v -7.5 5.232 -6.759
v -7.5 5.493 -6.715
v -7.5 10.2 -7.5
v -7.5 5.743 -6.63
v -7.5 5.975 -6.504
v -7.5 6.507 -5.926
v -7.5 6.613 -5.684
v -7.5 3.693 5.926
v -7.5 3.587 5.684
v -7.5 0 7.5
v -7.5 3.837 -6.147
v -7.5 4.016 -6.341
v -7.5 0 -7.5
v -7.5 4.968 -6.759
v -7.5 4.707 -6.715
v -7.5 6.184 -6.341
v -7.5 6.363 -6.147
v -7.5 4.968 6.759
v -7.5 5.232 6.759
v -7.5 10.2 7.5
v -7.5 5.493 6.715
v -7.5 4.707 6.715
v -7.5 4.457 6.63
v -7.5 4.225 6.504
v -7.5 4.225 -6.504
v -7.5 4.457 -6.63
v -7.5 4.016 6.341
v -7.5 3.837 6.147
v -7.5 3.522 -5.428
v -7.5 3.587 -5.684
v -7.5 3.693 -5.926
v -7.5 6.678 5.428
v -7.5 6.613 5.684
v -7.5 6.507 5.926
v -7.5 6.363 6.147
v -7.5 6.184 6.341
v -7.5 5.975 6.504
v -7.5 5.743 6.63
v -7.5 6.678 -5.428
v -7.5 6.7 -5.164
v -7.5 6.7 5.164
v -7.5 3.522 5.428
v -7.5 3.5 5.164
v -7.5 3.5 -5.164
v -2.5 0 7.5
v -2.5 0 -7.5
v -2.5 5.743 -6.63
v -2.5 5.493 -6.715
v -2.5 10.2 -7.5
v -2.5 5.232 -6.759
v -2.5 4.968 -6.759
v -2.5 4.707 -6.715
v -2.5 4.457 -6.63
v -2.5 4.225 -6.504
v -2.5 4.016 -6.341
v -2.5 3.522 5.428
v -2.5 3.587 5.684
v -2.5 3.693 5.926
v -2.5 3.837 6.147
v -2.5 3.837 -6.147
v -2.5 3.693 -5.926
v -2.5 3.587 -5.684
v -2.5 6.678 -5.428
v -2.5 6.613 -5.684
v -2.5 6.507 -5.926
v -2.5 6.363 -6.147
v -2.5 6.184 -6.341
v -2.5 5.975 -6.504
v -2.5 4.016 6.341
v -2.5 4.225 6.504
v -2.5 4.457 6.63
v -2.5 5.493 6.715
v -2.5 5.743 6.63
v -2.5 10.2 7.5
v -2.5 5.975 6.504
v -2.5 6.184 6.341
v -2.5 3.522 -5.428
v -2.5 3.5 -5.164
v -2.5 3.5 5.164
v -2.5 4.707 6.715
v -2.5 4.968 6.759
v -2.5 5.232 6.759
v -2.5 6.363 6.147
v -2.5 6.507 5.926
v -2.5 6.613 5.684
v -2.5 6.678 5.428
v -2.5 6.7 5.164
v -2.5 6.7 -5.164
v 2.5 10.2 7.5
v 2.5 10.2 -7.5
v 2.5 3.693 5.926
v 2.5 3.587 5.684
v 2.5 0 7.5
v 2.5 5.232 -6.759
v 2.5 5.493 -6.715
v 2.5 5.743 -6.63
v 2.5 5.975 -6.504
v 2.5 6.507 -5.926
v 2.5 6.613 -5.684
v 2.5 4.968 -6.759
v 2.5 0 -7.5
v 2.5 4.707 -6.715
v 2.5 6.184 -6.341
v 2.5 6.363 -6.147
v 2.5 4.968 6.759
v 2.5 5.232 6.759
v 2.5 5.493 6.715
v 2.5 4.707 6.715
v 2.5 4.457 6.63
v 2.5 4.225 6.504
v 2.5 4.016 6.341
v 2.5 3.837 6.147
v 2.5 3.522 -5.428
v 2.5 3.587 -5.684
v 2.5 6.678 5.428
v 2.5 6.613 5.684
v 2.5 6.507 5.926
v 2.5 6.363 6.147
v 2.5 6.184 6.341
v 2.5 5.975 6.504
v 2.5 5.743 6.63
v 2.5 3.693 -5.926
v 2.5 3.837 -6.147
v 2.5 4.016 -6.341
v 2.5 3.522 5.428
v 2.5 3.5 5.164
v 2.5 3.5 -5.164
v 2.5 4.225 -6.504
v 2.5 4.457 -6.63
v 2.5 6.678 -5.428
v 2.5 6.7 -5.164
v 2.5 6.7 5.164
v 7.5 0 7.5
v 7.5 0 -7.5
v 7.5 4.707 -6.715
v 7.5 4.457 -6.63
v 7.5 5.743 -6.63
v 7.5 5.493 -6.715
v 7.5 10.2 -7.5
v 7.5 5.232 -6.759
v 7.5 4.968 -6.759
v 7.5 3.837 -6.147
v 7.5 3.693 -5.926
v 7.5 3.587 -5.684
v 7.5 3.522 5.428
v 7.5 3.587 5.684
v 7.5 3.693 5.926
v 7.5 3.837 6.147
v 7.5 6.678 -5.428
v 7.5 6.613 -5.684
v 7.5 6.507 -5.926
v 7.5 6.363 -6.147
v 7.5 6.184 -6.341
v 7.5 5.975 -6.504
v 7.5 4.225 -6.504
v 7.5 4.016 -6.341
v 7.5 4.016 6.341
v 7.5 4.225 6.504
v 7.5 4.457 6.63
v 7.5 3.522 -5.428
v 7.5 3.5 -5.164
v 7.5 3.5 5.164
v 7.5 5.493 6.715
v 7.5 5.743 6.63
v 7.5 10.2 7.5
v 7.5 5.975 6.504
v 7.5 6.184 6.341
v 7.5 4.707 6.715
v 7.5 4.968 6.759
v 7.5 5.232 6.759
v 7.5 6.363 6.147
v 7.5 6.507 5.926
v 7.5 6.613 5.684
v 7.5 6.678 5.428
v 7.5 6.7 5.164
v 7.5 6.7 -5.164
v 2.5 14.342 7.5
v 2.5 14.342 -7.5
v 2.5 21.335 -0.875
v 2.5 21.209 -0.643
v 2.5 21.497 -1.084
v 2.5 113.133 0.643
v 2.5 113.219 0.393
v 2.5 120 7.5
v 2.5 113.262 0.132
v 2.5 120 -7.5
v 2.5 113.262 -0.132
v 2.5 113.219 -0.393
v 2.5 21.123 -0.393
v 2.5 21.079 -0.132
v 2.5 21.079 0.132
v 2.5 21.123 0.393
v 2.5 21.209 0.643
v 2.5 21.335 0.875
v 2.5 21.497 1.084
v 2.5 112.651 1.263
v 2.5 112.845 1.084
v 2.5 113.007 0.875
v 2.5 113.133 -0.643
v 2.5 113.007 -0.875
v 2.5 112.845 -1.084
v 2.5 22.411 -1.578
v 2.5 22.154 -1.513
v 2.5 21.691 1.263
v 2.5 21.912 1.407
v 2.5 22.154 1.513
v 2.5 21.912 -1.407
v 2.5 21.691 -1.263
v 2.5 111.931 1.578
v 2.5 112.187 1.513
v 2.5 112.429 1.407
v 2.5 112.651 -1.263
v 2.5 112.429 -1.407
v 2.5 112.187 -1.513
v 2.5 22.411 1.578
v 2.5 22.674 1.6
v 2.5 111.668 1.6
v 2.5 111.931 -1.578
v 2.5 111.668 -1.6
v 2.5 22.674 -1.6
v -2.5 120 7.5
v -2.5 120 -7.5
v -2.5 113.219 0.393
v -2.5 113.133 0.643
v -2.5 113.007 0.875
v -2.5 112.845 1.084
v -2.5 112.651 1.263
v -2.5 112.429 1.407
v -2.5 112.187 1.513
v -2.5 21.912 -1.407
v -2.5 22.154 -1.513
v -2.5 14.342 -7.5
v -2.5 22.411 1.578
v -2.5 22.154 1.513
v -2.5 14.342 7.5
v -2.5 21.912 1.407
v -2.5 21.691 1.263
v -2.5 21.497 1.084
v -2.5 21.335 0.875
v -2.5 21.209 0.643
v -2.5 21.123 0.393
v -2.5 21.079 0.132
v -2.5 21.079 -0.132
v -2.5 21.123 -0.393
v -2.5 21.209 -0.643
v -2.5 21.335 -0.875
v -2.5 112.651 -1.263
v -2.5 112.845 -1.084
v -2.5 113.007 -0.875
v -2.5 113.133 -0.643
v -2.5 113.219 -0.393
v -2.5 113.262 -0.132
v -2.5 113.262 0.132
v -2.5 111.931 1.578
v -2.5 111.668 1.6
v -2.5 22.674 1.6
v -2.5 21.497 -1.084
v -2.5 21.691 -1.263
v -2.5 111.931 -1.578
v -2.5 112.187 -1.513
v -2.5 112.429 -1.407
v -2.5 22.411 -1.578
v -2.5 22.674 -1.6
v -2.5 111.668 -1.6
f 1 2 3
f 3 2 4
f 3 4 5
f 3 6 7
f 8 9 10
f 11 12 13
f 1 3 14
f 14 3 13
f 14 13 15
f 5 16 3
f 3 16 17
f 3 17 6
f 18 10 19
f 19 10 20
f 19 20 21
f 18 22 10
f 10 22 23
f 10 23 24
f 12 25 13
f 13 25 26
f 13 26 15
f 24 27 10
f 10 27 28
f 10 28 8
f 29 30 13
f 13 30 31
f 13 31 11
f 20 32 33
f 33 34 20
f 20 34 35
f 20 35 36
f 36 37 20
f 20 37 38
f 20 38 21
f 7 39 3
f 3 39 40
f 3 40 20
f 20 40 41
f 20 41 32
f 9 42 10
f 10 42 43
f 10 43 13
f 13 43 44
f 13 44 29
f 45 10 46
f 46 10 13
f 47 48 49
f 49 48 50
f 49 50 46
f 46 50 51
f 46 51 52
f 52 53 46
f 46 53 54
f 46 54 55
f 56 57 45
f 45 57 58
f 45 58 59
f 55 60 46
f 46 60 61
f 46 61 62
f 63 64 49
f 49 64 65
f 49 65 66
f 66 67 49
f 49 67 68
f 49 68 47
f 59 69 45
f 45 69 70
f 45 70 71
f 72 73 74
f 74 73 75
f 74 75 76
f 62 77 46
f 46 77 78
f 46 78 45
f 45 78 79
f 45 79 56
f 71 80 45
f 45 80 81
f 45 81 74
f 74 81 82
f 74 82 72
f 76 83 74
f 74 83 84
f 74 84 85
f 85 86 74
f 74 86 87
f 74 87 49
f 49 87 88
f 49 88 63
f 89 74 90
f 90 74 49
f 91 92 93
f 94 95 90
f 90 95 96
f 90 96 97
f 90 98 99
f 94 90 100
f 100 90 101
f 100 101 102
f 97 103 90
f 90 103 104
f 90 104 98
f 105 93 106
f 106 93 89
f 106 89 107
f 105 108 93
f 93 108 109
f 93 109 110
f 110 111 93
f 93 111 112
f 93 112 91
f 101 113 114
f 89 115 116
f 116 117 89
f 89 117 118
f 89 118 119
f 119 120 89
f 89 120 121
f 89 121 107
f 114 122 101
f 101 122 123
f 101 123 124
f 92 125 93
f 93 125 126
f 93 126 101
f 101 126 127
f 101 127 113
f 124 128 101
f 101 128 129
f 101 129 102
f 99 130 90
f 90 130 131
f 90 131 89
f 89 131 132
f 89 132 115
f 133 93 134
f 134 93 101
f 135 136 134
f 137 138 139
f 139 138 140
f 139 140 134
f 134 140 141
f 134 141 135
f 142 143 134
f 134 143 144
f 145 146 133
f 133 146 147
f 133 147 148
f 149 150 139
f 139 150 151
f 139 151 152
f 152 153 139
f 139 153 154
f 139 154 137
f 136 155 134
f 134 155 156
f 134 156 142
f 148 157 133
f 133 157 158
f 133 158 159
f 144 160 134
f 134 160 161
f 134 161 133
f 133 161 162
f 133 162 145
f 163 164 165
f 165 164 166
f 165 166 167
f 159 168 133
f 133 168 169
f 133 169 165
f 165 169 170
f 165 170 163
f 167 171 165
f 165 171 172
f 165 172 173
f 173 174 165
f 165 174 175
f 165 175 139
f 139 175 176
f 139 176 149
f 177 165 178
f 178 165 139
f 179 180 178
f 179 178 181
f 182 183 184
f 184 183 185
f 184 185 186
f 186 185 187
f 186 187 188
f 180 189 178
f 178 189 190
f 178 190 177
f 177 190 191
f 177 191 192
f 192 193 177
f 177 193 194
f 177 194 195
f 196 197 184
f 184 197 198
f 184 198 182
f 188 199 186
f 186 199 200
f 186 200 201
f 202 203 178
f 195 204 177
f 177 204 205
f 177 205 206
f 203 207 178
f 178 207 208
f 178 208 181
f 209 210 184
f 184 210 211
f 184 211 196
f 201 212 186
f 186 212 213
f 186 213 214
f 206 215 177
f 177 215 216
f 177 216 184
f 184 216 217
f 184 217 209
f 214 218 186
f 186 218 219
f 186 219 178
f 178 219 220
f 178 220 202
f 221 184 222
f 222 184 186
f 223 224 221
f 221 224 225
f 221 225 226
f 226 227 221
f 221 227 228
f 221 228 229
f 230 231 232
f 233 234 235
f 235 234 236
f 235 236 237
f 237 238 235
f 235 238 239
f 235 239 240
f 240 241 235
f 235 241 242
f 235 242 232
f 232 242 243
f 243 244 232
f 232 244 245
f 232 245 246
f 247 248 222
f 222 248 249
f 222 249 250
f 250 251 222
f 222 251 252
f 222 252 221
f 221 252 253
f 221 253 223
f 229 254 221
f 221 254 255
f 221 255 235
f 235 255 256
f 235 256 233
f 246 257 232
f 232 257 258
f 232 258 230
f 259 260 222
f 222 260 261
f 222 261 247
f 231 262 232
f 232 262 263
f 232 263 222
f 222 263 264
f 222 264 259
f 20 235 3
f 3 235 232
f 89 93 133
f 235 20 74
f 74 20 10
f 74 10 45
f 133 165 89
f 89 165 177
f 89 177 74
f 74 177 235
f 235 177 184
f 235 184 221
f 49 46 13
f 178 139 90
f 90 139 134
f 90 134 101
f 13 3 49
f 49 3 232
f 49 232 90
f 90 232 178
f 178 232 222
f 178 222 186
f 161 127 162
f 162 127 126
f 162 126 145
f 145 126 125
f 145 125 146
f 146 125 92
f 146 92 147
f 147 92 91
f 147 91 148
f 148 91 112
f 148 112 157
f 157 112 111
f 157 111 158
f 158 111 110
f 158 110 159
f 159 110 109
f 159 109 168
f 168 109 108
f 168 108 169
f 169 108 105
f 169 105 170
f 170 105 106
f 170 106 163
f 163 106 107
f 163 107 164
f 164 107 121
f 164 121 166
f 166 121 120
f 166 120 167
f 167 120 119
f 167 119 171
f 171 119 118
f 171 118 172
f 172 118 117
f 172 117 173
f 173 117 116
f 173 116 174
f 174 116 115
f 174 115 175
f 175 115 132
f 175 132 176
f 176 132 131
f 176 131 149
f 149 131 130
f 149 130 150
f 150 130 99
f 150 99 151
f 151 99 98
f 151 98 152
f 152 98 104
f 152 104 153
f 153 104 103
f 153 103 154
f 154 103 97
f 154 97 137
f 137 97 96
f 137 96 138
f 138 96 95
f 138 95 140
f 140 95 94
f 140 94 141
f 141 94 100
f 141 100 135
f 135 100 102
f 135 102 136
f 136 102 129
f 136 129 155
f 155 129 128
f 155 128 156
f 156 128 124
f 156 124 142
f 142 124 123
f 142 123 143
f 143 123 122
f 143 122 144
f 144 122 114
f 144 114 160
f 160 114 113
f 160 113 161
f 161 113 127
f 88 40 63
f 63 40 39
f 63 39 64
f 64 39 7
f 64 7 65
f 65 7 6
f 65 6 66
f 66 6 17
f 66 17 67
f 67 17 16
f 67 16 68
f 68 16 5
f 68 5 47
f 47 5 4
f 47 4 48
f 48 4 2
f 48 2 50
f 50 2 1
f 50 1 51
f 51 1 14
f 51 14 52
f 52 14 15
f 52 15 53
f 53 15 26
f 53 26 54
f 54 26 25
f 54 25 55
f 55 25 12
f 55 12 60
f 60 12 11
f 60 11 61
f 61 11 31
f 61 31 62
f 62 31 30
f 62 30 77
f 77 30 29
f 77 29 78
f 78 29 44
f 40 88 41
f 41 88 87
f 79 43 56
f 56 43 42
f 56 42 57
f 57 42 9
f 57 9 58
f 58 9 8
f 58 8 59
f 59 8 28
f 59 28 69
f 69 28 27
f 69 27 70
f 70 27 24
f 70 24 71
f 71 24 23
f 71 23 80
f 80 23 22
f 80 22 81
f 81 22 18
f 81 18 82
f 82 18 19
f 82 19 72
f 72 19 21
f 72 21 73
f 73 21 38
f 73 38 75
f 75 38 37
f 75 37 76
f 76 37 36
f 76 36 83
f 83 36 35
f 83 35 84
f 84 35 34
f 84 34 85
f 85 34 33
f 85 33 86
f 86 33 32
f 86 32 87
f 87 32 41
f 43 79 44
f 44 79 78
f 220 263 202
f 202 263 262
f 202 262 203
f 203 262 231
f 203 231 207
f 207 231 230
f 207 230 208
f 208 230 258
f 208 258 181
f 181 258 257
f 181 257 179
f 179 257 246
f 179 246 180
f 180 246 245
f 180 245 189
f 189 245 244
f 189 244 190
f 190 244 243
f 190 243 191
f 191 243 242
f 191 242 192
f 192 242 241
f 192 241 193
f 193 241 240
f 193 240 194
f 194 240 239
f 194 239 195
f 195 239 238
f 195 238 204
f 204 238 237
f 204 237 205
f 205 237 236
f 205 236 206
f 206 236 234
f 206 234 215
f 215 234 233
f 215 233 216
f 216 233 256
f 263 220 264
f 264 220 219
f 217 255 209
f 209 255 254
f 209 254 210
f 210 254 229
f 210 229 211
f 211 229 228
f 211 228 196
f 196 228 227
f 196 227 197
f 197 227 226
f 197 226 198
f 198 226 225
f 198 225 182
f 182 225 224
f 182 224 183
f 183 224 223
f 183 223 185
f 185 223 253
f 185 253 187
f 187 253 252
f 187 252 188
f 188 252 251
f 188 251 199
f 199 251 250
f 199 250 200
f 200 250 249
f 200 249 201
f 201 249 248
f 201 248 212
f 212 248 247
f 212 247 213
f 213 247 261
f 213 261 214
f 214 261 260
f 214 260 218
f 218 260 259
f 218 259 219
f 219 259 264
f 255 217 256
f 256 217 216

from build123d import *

# Parameters (mm, degrees)
BOSS_EXTRU_1_DEPTH      = 7.5
ENL_V_MAT_EXTRU_1_DEPTH = 25
ENL_V_MAT_EXTRU_2_DEPTH = 25


with BuildPart() as part:
    # Esquisse1 → Boss.-Extru.1 (new, symmetric)
    with BuildSketch(Plane.XY):
        Polygon((-7.5, 0), (-2.5, 0), (-2.5, 10.2), (2.5, 10.2), (2.5, 0), (7.5, 0), (7.5, 10.2), (2.5, 14.34186057), (2.5, 120), (-2.5, 120), (-2.5, 14.34186057), (-7.5, 10.2), align=None)
    extrude(amount=BOSS_EXTRU_1_DEPTH, both=True)

    # Esquisse2 → Enlèv. mat.-Extru.1 (cut)
    with BuildSketch(Plane.ZY.offset(7.5)):
        with BuildLine():
            Line((-5.164295133, 6.7), (5.164295133, 6.7))
            ThreePointArc((5.164295133, 6.7), (6.764295133, 5.1), (5.164295133, 3.5))
            Line((5.164295133, 3.5), (-5.164295133, 3.5))
            ThreePointArc((-5.164295133, 3.5), (-6.764295133, 5.1), (-5.164295133, 6.7))
        make_face()
    extrude(amount=-ENL_V_MAT_EXTRU_1_DEPTH, mode=Mode.SUBTRACT)

    # Esquisse3 → Enlèv. mat.-Extru.2 (cut)
    with BuildSketch(Plane.ZY.offset(2.5)):
        with BuildLine():
            Line((-1.6, 22.673972566), (-1.6, 111.667888004))
            ThreePointArc((-1.6, 111.667888004), (0, 113.267888004), (1.6, 111.667888004))
            Line((1.6, 111.667888004), (1.6, 22.673972566))
            ThreePointArc((1.6, 22.673972566), (0, 21.073972566), (-1.6, 22.673972566))
        make_face()
    extrude(amount=-ENL_V_MAT_EXTRU_2_DEPTH, mode=Mode.SUBTRACT)


solid = part.part
